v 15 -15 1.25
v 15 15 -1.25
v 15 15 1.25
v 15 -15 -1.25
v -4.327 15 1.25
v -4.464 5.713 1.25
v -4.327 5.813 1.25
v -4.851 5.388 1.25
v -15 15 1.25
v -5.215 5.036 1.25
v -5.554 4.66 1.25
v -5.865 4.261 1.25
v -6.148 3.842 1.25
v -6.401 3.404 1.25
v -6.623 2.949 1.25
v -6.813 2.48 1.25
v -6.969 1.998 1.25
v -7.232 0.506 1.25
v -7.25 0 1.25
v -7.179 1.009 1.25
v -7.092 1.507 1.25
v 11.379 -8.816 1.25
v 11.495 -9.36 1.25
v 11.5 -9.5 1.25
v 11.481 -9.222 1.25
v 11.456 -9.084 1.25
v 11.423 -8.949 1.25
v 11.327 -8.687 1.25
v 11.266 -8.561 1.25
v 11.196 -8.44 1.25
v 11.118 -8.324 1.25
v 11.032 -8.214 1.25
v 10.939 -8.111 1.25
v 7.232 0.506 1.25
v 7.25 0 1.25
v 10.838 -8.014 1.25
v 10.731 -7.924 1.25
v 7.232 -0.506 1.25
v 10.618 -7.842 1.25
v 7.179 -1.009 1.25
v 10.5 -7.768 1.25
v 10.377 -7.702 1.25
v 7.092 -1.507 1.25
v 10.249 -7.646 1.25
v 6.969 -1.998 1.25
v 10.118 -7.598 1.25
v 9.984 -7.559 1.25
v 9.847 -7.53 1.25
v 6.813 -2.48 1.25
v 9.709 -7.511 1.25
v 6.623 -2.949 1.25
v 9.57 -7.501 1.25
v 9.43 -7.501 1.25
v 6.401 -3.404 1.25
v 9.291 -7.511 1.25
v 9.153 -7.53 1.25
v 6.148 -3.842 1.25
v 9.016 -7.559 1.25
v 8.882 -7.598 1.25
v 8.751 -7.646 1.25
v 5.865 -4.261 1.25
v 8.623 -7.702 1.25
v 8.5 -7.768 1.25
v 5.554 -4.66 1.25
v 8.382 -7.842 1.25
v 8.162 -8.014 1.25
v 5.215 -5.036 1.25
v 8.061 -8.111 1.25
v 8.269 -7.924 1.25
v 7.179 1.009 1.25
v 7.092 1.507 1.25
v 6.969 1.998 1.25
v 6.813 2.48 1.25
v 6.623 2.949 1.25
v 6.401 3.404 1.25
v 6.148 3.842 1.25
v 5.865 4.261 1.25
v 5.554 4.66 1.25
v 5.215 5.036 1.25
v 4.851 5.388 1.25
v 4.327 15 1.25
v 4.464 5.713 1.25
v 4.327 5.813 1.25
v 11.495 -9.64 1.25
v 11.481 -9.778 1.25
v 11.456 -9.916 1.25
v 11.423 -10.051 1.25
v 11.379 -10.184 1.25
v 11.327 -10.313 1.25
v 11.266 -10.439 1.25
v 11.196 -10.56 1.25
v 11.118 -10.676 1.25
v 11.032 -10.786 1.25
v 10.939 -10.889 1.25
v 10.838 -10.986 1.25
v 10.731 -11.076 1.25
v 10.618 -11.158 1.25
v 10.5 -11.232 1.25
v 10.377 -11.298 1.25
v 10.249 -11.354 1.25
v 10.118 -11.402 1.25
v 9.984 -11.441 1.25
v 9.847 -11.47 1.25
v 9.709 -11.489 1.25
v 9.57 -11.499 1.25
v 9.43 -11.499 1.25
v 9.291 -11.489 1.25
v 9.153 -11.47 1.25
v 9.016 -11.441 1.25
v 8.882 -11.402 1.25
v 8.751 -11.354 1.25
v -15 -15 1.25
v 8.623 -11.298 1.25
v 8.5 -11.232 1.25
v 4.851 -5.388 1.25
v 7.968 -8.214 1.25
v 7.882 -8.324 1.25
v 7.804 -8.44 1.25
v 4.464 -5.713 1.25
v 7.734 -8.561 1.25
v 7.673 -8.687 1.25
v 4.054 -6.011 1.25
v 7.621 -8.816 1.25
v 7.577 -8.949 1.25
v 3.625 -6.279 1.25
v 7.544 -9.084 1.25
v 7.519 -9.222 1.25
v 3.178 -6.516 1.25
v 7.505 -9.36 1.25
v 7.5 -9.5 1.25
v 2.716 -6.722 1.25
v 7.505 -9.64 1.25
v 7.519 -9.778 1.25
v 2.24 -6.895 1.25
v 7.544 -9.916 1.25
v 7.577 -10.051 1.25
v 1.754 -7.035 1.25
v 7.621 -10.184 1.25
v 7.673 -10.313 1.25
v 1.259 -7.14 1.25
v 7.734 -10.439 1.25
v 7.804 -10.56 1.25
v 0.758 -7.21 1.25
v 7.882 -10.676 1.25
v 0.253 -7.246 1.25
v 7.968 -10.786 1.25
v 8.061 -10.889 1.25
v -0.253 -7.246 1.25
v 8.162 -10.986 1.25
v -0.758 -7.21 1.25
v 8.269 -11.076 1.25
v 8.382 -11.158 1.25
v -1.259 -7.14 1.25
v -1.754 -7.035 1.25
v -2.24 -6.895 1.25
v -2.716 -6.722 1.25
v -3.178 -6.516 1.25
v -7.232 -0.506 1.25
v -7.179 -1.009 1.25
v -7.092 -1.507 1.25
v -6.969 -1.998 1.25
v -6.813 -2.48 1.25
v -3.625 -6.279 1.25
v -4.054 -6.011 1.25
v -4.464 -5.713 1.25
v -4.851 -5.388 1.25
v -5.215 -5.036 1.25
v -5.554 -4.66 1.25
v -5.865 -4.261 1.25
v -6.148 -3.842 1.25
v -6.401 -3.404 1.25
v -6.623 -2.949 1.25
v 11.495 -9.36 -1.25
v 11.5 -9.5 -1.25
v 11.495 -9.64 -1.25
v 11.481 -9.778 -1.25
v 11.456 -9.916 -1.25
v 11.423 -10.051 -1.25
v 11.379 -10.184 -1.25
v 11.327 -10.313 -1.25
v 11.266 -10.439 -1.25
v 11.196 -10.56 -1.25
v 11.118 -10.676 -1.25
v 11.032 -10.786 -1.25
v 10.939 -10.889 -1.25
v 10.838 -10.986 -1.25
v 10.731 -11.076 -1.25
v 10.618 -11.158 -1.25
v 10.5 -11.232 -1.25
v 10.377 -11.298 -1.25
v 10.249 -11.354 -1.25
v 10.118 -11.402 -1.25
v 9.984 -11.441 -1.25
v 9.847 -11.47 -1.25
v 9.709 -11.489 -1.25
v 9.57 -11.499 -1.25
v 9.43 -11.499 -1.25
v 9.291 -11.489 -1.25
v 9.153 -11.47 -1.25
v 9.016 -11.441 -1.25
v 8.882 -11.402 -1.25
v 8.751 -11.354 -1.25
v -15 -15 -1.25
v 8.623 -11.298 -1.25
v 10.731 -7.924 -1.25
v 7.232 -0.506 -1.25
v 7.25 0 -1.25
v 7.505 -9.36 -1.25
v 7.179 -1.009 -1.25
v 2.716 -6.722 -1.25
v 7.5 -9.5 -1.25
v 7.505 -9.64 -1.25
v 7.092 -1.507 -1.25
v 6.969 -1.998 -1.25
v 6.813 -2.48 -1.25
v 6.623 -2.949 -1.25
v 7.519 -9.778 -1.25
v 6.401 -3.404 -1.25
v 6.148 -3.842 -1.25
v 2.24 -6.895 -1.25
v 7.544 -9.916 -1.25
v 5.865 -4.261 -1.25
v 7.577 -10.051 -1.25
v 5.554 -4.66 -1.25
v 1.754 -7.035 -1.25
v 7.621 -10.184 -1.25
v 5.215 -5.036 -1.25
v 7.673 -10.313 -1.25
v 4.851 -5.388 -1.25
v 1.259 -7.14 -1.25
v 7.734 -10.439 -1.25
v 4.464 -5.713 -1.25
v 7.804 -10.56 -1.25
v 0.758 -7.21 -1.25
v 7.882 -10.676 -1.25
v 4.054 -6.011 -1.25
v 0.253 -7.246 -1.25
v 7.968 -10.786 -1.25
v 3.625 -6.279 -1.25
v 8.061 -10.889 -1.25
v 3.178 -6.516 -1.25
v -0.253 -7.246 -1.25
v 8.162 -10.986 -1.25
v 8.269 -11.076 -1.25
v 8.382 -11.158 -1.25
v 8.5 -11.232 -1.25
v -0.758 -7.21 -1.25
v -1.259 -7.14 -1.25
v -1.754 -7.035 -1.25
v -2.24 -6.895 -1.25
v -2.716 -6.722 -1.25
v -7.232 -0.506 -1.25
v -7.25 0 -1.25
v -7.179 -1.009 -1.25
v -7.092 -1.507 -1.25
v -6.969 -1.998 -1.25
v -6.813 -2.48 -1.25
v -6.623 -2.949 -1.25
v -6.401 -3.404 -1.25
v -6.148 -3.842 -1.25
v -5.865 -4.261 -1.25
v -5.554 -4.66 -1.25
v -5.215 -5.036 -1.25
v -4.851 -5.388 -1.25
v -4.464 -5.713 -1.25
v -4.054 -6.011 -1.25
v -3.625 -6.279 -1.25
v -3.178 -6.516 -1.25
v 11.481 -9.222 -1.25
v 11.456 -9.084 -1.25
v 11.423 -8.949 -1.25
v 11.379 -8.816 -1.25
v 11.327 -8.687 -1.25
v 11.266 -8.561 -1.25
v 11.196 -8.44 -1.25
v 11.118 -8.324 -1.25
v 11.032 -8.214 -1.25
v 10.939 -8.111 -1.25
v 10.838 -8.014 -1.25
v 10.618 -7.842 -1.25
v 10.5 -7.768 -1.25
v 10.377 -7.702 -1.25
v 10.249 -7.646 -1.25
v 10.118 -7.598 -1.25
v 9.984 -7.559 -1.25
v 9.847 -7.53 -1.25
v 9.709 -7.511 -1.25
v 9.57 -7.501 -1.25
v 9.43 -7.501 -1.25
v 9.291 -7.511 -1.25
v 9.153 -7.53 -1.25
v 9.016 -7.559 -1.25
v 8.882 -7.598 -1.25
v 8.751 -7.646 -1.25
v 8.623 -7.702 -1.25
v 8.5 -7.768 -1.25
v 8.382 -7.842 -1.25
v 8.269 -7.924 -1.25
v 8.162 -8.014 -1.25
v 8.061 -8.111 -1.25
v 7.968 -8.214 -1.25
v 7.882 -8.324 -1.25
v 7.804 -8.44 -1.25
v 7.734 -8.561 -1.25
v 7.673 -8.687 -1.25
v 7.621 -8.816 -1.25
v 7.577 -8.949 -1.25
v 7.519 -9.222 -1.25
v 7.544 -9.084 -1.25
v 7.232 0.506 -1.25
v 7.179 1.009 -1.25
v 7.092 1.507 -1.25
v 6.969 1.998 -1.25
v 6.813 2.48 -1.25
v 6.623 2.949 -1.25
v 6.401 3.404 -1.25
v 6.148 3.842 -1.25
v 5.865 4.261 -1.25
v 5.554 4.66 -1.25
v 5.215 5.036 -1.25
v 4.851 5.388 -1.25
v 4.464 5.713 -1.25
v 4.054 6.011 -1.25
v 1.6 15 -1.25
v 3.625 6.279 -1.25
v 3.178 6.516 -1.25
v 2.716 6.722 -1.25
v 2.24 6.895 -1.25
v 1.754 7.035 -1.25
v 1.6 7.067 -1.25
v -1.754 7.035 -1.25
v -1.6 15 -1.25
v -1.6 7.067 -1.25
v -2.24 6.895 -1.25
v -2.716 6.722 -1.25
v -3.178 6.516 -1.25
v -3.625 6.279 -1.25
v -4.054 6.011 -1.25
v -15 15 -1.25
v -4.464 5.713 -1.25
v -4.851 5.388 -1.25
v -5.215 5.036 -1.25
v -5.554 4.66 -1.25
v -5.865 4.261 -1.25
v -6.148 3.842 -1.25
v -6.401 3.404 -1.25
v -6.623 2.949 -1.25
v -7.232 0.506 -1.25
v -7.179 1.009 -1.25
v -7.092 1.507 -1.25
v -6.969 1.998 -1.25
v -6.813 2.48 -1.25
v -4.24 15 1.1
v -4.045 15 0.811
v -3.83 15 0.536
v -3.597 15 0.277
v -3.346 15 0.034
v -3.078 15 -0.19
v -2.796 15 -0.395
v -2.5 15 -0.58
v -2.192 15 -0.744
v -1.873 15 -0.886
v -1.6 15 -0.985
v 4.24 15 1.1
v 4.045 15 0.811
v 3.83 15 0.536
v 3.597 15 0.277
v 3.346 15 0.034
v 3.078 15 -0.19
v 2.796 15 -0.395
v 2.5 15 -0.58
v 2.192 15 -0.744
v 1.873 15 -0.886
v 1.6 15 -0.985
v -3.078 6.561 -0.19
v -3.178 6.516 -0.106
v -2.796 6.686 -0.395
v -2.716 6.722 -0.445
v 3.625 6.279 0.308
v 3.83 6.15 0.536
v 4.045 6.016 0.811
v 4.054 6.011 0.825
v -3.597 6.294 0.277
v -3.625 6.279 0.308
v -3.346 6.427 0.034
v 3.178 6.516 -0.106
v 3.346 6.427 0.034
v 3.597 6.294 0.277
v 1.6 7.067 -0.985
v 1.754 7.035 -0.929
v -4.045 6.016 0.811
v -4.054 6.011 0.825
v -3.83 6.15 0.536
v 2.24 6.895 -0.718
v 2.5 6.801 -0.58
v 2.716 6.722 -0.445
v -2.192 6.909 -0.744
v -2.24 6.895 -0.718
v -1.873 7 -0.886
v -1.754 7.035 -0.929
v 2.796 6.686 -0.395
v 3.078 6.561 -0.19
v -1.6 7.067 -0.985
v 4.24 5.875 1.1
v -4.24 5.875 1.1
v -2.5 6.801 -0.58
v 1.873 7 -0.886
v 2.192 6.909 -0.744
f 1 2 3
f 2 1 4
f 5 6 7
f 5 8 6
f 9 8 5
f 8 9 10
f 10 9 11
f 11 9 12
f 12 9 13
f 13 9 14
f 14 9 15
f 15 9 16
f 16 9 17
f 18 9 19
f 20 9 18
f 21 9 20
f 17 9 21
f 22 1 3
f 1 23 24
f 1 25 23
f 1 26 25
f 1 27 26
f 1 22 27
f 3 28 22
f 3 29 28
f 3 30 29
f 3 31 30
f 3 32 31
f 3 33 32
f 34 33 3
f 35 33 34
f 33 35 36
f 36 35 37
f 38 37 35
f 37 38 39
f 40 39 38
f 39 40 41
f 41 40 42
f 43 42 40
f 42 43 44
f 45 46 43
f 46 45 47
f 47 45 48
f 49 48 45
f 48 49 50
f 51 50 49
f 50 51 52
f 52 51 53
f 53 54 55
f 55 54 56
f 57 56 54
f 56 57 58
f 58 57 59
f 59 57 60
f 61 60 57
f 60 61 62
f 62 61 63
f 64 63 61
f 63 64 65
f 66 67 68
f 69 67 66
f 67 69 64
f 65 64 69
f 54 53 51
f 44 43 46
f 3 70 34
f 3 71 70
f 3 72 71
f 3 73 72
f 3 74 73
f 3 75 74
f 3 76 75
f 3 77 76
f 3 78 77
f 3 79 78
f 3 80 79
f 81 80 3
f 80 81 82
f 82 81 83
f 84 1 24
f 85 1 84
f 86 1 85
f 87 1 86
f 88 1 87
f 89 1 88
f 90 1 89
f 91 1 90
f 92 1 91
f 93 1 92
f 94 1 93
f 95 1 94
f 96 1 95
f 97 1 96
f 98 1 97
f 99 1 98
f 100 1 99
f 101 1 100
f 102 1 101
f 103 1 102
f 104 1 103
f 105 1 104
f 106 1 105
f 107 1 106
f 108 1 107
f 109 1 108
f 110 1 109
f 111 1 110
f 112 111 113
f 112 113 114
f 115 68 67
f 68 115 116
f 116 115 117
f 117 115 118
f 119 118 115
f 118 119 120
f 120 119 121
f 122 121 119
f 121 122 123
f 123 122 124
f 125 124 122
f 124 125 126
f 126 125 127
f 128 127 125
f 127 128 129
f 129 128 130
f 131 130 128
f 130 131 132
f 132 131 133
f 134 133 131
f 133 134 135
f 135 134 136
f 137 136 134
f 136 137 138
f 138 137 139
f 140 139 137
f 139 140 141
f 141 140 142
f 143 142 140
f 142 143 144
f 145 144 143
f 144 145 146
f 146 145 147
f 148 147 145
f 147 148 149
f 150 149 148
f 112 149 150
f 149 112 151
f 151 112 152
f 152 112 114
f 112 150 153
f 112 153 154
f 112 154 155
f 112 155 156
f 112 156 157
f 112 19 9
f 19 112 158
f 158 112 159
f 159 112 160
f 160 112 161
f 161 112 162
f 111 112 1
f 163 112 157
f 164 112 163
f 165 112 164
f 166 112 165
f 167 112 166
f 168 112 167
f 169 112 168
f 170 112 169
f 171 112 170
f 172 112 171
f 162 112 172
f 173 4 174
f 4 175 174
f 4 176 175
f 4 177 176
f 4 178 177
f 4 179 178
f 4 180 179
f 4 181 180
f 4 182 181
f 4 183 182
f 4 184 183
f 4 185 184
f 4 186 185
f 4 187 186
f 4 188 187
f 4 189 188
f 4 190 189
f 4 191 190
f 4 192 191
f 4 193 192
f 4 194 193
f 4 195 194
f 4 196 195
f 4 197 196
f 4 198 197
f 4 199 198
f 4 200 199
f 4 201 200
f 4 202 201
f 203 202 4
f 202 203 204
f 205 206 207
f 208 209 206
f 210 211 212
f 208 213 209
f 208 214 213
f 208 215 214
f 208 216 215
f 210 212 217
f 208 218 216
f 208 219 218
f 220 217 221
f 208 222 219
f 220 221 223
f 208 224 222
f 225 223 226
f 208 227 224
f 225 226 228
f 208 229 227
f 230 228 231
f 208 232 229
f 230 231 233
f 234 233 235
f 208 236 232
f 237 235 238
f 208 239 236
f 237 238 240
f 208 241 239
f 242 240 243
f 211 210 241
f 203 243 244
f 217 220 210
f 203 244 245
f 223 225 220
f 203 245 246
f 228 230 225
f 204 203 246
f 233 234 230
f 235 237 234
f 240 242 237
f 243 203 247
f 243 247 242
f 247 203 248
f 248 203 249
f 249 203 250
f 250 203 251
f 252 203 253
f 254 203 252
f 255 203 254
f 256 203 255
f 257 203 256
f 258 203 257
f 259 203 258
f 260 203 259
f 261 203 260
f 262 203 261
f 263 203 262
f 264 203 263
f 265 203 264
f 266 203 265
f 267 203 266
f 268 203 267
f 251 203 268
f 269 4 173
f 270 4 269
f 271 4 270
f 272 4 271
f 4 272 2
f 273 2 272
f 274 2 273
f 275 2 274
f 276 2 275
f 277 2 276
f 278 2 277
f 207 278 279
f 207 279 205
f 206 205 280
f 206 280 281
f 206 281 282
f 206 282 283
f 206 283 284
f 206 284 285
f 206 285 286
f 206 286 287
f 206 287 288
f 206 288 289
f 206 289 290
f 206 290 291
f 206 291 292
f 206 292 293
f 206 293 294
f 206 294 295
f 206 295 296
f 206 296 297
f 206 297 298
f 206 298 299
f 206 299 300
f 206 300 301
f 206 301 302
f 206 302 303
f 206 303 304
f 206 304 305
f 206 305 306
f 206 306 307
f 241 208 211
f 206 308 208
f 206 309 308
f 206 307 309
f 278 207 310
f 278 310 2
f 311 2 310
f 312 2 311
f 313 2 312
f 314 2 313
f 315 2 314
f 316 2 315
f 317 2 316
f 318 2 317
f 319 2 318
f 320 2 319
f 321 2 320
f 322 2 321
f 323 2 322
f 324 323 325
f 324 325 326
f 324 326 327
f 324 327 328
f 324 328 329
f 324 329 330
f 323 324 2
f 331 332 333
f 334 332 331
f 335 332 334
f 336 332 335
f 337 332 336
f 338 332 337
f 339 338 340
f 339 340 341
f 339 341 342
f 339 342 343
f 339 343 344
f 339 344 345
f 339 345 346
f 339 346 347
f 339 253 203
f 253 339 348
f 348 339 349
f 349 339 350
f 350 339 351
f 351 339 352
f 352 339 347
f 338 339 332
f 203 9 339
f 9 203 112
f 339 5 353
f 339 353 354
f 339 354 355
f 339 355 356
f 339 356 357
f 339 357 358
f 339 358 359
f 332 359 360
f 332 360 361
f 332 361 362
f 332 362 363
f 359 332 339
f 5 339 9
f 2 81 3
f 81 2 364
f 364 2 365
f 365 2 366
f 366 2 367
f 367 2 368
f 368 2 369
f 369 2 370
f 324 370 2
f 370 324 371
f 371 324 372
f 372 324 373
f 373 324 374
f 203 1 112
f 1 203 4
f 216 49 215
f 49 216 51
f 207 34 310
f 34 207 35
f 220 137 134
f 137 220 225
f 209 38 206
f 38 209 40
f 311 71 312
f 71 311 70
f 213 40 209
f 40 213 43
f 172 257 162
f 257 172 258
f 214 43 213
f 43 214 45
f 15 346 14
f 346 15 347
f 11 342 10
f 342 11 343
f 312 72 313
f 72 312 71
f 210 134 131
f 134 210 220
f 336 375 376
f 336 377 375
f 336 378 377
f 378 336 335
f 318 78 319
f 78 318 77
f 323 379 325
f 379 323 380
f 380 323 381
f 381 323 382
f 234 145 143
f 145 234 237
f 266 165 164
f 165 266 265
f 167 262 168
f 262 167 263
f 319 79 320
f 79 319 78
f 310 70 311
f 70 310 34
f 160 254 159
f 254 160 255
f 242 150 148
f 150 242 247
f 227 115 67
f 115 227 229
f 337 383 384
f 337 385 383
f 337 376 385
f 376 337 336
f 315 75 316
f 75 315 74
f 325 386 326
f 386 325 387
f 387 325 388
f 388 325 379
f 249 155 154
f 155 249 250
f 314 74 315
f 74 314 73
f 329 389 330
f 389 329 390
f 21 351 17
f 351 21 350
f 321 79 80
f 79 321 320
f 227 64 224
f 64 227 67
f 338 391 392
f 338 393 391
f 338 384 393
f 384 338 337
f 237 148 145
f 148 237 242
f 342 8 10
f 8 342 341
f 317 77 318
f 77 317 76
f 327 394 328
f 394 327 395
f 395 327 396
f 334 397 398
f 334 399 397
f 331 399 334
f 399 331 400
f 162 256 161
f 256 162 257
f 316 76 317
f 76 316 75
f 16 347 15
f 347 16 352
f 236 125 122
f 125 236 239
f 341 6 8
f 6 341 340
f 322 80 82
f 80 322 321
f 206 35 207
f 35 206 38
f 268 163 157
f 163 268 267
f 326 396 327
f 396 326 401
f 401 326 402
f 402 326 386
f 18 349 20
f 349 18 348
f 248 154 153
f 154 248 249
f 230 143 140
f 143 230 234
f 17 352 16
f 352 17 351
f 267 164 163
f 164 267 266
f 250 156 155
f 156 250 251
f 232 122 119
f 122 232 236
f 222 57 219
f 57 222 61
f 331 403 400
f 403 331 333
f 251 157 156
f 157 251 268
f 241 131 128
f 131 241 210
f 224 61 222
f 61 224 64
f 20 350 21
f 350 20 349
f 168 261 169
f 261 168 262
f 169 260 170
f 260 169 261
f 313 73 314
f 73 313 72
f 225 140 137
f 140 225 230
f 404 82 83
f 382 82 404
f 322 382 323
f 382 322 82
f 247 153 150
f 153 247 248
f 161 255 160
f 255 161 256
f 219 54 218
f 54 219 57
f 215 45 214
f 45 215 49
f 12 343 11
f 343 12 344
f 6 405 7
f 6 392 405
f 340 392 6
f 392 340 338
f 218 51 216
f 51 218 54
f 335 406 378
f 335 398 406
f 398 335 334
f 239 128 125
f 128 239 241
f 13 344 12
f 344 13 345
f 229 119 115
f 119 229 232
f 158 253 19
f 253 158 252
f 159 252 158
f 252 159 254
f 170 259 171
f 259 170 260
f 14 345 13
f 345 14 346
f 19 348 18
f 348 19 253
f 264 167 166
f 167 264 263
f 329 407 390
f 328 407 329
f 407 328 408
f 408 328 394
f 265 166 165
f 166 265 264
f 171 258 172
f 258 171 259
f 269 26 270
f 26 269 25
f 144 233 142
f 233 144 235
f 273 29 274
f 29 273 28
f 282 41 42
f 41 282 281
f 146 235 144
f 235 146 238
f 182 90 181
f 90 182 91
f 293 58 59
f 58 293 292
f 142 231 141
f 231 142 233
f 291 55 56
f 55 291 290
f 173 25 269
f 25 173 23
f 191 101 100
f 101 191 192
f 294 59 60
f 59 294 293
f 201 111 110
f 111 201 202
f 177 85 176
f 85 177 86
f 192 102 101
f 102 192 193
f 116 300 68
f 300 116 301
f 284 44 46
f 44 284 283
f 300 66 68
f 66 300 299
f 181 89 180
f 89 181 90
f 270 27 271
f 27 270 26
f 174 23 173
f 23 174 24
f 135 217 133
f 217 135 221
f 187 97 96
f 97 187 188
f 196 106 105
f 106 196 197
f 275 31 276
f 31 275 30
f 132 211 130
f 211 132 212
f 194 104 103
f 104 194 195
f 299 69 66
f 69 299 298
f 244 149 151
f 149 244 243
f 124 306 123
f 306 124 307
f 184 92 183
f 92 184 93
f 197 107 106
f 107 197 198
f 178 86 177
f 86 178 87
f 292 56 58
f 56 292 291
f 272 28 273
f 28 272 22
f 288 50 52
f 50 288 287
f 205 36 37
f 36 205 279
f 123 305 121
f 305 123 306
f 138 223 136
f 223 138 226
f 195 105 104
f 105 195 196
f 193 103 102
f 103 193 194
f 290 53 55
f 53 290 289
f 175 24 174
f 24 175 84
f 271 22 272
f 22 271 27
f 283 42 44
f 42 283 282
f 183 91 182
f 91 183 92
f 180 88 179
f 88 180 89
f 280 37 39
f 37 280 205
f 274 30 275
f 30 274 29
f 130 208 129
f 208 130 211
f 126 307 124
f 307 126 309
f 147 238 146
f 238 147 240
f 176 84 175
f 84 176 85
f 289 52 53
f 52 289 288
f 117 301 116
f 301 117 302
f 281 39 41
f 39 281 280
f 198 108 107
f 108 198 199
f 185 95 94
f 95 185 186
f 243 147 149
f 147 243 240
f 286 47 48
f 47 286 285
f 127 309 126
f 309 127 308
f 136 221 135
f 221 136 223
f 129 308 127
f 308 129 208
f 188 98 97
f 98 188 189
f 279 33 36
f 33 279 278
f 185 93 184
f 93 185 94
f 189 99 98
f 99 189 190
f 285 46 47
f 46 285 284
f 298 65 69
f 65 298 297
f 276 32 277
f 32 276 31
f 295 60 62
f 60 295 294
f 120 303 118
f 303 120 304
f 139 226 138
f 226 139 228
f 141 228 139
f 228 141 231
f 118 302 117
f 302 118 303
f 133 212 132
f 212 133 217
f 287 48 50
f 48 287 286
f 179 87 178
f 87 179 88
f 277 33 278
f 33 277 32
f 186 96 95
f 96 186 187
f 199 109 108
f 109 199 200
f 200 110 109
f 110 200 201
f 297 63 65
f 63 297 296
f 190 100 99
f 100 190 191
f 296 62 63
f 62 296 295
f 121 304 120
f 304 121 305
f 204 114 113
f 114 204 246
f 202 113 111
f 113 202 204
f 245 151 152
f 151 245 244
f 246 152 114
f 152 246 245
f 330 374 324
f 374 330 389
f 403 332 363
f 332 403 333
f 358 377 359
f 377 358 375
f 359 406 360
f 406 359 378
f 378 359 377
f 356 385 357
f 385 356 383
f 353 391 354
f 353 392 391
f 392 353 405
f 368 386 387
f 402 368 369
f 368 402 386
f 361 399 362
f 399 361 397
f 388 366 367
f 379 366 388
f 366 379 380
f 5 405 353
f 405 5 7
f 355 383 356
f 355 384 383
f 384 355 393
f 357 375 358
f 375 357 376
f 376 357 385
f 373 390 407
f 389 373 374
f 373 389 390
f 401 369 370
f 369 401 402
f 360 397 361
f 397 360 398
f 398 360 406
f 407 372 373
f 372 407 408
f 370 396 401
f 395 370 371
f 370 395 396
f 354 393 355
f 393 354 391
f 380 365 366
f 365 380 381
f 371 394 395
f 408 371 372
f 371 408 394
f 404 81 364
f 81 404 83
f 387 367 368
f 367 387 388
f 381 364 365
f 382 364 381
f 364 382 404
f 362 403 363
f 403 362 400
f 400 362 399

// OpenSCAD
$fn=90;

difference() {
  cube([30, 30, 2.5], center=true);
  cylinder(d=14.5, h=2.5, center=true);
  translate([9.5, -9.5, 0]) cylinder(d=4, h=2.5, center=true);
  translate([0, 7.5, 0]) cube([3.2, 15, 2.5], center=true);
  translate([0, 7.5, 5 - 1.25]) rotate([90, 0, 0]) cylinder(d=10, h=15, center=true); 
}
